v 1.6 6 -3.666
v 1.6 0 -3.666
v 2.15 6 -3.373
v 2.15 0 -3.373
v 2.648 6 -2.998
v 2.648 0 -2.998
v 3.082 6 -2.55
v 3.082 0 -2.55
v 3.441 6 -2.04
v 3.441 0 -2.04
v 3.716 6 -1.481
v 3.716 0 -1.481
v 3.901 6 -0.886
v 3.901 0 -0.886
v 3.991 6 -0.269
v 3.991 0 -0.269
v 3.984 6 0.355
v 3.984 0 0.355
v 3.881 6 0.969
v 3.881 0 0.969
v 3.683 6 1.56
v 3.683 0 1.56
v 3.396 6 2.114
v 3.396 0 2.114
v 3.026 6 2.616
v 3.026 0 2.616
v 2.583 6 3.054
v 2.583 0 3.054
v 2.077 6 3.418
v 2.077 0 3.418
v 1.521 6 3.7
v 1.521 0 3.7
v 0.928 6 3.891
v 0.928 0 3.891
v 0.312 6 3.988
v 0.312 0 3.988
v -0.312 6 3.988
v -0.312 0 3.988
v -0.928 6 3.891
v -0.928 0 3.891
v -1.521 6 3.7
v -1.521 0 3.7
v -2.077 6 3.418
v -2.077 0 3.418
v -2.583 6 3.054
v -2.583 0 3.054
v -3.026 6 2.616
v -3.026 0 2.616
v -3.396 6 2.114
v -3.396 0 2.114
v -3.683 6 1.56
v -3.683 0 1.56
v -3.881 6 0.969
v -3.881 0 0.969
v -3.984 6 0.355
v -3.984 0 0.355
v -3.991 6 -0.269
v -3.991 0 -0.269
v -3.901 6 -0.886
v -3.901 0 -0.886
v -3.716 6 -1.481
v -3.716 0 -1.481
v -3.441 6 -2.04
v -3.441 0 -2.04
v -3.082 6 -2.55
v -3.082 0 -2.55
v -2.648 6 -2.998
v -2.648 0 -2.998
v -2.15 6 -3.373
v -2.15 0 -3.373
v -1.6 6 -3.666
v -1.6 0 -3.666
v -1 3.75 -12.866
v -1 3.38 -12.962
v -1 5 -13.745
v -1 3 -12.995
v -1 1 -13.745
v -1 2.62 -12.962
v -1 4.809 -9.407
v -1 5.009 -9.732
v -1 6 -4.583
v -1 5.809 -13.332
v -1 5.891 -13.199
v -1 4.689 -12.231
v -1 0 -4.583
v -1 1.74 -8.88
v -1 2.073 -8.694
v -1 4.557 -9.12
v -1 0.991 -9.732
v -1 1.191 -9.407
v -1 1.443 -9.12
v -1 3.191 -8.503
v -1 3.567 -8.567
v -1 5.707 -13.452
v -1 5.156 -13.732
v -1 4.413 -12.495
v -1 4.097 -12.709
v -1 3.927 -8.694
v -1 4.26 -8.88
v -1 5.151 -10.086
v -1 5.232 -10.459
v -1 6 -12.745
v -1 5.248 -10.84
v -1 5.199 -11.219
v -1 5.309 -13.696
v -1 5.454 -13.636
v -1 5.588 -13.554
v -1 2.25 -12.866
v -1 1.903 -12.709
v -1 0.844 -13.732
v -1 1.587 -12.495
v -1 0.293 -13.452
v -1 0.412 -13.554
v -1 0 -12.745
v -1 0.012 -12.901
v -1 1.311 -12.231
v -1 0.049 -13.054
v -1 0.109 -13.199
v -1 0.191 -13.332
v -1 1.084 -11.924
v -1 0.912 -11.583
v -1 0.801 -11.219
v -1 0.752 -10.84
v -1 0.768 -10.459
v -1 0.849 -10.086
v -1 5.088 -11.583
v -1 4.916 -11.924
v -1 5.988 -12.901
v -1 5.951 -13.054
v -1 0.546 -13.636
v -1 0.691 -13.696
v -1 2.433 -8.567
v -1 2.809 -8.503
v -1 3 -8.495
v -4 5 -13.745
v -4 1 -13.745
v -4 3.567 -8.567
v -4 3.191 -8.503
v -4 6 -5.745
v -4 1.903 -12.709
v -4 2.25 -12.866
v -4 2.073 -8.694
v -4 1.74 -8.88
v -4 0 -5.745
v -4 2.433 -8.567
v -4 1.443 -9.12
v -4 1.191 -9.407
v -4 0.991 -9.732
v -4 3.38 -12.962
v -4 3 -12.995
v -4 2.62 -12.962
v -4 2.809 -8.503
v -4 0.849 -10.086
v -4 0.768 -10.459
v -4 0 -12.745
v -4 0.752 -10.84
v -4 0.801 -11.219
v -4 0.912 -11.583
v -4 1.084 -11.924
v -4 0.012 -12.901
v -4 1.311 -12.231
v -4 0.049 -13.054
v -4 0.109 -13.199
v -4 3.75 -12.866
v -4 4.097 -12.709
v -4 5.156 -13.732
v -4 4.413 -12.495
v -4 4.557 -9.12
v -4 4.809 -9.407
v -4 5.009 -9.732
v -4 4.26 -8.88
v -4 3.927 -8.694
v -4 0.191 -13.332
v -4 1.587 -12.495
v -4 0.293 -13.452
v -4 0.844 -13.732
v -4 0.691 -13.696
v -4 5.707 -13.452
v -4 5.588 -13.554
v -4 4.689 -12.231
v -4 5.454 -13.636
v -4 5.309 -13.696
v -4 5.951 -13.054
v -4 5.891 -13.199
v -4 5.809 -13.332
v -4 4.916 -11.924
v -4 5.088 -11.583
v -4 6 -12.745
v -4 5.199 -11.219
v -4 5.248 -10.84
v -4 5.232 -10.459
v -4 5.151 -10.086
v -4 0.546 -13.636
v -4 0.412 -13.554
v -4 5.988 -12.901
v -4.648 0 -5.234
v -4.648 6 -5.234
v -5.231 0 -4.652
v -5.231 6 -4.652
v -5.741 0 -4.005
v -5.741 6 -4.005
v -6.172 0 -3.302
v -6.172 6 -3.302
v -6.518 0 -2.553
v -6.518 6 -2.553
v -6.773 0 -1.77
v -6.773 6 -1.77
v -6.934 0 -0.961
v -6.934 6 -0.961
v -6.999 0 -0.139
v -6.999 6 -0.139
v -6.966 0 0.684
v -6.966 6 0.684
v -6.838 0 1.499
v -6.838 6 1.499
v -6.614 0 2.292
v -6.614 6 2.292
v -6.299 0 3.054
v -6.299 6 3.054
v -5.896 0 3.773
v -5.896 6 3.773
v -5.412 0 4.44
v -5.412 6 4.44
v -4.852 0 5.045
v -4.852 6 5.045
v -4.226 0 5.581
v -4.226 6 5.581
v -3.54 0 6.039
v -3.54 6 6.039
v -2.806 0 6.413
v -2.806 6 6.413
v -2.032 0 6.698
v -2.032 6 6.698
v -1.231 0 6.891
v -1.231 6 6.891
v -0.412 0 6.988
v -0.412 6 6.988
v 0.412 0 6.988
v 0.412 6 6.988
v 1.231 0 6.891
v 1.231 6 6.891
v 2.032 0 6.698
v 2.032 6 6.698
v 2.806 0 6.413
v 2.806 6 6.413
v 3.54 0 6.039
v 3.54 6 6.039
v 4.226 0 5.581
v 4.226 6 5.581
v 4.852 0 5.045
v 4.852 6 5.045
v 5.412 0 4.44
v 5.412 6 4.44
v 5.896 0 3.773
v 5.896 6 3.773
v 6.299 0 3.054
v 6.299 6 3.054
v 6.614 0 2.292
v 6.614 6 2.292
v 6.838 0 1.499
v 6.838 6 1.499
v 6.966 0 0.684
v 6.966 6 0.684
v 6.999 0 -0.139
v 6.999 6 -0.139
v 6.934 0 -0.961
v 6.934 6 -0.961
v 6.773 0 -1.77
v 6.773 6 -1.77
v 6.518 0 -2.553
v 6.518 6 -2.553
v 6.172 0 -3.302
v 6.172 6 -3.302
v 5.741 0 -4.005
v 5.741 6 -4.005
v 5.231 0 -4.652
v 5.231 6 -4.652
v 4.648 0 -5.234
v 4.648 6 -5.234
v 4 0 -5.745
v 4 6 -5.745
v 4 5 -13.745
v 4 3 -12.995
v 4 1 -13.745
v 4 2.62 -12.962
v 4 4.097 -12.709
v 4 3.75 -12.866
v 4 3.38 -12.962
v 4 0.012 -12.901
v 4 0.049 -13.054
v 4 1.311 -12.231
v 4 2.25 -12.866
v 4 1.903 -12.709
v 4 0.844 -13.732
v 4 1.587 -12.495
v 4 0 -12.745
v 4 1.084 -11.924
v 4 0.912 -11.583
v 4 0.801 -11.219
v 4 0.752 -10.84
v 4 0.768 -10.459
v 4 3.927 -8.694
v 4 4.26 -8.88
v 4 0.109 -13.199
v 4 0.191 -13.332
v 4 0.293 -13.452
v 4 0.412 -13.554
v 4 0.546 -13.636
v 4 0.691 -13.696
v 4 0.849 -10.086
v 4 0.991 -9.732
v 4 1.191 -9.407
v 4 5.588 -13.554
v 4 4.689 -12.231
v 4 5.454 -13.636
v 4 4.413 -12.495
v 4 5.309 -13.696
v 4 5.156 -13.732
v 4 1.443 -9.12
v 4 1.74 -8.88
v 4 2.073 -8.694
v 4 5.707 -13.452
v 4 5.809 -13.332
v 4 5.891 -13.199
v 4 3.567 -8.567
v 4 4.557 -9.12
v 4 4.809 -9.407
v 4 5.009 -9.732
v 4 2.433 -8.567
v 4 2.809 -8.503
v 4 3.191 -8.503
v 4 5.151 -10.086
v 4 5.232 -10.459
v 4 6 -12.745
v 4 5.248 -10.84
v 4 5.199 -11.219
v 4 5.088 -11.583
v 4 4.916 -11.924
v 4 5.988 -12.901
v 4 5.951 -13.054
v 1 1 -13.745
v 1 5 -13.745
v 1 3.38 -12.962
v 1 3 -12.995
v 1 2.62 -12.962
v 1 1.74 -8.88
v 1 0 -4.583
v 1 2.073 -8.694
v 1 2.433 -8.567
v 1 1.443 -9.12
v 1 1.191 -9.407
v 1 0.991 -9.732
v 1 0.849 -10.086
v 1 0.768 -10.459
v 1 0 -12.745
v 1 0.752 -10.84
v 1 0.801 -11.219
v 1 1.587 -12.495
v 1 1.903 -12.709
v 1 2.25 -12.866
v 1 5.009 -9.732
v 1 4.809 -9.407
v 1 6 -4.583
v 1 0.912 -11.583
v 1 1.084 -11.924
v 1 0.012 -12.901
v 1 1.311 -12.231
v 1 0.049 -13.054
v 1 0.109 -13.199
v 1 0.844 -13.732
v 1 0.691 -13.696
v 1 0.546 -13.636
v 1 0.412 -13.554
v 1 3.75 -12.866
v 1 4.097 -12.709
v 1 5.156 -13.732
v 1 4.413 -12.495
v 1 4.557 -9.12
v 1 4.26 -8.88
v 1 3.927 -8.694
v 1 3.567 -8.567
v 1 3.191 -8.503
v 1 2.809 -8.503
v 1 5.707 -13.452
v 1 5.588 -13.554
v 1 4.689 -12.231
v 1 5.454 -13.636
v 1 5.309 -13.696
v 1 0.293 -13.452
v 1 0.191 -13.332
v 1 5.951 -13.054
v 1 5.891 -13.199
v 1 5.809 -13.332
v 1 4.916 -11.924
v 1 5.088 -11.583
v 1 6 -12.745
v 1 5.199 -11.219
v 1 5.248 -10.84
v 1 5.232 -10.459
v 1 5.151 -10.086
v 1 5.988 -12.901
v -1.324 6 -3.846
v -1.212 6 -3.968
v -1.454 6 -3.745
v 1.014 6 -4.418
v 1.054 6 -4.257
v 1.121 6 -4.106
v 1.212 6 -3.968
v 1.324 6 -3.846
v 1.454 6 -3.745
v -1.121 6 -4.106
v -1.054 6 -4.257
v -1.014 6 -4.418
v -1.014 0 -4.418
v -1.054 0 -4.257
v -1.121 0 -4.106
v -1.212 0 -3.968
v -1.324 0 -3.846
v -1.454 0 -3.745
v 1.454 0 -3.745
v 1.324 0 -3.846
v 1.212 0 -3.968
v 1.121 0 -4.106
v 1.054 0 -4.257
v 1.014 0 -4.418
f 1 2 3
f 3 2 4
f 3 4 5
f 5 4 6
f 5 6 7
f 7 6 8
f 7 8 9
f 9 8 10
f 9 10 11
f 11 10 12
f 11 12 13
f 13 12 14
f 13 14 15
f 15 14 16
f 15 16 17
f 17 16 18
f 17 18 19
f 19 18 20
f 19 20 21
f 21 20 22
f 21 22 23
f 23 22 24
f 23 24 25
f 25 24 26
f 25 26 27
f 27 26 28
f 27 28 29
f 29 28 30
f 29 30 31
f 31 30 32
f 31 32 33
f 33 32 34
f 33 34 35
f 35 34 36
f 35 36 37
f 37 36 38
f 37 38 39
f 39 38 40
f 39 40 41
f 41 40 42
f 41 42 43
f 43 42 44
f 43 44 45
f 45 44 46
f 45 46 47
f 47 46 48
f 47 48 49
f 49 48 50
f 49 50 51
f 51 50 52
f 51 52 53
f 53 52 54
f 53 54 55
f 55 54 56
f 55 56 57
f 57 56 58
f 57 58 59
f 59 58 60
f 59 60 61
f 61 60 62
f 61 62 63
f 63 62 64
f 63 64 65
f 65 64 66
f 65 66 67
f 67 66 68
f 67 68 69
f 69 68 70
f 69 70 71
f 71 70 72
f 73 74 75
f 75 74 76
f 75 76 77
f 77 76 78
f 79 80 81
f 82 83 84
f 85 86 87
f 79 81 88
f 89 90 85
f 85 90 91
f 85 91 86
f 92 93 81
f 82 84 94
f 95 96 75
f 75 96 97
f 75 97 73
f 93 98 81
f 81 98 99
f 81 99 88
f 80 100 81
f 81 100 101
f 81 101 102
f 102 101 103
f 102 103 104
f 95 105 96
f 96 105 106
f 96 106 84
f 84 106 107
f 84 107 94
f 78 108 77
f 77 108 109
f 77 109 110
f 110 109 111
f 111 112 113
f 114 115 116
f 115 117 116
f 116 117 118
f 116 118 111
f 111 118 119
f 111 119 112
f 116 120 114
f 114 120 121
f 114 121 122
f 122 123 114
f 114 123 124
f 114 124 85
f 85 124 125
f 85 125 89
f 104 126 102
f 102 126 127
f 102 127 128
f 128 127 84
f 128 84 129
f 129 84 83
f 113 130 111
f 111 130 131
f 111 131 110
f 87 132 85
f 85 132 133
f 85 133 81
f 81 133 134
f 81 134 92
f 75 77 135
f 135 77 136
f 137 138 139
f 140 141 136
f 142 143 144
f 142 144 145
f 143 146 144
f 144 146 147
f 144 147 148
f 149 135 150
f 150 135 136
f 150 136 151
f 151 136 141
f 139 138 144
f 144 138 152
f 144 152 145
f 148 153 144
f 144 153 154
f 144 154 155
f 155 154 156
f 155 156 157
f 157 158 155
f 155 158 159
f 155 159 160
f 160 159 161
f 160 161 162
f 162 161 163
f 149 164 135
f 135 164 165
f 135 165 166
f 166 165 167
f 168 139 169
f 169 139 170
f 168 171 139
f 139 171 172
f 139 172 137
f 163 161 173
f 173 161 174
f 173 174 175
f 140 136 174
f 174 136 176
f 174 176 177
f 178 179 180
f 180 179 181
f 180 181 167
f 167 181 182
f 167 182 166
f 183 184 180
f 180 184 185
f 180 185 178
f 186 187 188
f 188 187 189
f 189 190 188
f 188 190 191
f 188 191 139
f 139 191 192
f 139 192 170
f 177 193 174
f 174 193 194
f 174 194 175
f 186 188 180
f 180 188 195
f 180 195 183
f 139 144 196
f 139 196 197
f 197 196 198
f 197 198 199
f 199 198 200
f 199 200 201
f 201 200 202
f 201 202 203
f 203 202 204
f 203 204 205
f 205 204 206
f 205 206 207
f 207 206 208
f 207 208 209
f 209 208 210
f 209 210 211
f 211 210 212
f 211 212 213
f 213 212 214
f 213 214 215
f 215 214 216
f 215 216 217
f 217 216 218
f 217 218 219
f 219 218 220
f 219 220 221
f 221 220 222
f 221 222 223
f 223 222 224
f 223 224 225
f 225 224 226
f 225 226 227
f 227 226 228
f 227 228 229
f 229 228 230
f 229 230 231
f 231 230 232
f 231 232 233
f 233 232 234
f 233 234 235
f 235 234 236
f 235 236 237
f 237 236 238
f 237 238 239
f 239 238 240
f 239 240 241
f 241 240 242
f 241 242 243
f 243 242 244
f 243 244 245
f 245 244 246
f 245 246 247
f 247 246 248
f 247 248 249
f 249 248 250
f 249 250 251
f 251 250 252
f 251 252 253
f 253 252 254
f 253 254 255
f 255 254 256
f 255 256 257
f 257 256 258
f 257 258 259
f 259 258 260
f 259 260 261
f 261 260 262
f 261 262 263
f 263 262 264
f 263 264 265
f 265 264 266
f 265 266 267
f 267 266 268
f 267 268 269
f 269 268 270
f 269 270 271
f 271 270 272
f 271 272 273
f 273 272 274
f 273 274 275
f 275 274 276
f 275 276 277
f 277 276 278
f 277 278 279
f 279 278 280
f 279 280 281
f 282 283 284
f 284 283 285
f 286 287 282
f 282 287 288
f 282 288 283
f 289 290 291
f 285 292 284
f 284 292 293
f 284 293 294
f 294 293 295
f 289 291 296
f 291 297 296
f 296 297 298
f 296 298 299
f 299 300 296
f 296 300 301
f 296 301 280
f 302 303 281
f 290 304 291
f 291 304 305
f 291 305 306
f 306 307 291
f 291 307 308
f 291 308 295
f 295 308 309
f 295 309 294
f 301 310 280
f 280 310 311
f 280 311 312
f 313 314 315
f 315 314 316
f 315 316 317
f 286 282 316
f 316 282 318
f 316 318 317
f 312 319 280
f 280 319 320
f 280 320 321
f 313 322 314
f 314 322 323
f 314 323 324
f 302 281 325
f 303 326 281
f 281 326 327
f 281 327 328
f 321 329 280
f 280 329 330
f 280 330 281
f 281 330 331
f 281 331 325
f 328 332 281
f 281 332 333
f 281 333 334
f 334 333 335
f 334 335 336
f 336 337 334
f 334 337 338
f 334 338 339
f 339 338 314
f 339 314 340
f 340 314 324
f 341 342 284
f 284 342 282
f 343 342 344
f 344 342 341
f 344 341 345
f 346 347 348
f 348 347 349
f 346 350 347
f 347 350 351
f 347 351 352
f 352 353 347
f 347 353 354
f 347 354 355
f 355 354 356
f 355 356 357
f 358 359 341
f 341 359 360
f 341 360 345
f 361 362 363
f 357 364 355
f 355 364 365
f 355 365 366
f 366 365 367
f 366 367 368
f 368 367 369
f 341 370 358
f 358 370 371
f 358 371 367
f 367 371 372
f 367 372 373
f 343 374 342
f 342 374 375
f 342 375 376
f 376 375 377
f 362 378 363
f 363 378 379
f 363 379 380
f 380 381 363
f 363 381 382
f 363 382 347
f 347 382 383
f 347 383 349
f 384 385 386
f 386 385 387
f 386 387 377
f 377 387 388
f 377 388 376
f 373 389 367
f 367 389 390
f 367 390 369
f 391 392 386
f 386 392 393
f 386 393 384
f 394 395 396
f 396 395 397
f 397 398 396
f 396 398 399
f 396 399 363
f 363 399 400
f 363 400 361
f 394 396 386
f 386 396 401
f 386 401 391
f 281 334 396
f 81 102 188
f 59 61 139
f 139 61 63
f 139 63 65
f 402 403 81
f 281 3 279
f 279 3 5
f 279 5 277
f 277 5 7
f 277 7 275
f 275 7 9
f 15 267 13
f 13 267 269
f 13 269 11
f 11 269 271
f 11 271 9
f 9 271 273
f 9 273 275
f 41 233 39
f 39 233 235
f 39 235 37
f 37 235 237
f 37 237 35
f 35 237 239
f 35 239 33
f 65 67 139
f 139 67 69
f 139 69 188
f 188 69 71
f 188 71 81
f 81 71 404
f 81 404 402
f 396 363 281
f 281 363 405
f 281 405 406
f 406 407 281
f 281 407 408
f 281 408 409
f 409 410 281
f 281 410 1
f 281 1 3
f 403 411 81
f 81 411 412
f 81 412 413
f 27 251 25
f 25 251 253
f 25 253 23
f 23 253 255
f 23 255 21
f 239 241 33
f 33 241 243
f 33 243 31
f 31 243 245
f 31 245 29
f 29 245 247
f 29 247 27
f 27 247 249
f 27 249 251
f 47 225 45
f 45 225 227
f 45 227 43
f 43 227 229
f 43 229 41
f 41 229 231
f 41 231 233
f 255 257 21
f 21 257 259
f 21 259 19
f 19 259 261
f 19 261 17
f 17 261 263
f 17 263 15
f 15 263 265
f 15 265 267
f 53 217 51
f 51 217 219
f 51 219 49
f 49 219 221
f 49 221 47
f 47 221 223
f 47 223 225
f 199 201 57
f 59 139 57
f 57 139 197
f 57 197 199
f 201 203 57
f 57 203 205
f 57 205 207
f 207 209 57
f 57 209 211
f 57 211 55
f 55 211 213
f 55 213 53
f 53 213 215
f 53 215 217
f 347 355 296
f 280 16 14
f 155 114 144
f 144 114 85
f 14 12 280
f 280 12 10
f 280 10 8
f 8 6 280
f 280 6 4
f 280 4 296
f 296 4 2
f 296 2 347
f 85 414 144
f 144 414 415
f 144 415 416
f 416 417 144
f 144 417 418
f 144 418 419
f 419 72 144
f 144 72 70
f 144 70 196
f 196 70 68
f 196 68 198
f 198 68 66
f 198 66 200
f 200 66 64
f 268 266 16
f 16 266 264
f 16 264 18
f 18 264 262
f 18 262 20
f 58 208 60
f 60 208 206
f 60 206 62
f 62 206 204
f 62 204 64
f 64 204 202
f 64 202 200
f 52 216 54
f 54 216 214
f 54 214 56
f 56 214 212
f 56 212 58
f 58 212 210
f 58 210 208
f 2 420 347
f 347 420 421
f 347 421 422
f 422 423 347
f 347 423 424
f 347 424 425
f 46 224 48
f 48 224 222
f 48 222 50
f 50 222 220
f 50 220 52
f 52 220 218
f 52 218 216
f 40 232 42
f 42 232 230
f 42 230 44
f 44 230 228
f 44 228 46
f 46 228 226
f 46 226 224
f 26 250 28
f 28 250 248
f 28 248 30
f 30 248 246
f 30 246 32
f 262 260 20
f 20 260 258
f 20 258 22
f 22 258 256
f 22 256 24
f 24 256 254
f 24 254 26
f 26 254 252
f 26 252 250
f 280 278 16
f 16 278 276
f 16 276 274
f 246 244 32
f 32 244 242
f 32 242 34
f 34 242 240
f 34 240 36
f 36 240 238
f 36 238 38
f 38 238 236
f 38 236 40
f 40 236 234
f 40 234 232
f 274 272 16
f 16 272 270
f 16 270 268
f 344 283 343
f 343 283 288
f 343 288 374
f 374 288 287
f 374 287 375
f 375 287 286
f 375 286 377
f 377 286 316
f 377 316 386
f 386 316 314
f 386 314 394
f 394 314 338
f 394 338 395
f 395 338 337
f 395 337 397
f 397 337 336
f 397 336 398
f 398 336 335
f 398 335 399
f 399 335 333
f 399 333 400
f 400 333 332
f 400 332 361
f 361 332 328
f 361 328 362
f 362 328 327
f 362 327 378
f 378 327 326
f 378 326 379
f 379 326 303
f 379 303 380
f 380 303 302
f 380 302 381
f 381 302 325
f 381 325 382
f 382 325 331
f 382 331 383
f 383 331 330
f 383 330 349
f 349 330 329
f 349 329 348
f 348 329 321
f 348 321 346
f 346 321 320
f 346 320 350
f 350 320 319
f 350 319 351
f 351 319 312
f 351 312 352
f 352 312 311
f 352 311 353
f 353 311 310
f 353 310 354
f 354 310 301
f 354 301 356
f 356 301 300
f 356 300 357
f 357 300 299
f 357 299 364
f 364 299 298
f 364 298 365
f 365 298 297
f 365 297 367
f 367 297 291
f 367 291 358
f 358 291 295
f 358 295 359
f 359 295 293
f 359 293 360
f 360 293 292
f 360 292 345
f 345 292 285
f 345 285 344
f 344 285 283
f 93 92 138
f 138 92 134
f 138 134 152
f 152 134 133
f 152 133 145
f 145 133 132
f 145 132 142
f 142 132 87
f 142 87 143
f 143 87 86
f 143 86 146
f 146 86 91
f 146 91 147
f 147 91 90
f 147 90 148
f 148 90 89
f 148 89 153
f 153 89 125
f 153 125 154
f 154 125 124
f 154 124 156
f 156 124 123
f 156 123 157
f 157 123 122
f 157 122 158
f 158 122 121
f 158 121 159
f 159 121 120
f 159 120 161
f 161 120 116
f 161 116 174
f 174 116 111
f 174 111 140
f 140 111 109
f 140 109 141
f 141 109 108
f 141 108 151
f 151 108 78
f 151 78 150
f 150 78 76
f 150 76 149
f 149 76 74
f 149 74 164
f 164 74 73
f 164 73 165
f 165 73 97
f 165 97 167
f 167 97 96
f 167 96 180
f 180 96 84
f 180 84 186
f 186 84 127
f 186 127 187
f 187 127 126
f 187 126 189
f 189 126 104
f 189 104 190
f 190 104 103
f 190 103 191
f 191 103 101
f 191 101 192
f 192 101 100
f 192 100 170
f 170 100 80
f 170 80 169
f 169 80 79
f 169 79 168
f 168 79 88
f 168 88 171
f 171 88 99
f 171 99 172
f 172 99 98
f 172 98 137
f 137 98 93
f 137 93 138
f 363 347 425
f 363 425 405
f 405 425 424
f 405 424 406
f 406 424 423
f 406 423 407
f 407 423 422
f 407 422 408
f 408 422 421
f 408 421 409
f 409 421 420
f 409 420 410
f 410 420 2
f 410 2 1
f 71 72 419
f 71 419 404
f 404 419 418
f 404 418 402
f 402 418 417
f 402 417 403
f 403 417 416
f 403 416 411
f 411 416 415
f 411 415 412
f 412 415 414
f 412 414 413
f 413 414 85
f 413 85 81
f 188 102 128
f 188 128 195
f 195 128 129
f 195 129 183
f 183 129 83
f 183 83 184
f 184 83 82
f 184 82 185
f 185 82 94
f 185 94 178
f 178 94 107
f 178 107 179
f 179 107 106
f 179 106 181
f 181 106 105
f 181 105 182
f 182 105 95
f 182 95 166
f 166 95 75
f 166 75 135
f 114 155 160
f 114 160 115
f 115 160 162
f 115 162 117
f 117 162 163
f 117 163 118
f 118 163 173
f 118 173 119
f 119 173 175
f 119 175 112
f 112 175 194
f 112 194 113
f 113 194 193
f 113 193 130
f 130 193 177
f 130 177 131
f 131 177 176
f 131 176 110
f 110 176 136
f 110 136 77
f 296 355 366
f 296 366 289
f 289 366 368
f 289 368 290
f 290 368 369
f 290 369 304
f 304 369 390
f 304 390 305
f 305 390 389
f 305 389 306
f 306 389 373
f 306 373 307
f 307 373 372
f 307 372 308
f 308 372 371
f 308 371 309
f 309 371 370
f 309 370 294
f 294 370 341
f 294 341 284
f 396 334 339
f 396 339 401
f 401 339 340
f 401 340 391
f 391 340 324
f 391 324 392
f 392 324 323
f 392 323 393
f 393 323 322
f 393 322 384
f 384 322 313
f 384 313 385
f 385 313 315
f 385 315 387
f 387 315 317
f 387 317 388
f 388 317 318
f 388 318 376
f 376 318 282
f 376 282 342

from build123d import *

# Parameters (mm, degrees)
BOSS_EXTRUDE1_DEPTH = 6
SKETCH3_R           = 2.25
CUT_EXTRUDE1_DEPTH  = 10
FILLET1_R           = 1


with BuildPart() as part:
    # Sketch2 → Boss-Extrude1 (new body)
    with BuildSketch(Plane(origin=(0, 0, 0), x_dir=(1, 0, 0), z_dir=(0, 1, 0))):
        with BuildLine():
            Line((-1, 3.872983346), (-1, 13.744562647))
            Line((-1, 13.744562647), (-4, 13.744562647))
            Line((-4, 13.744562647), (-4, 5.744562647))
            ThreePointArc((-4, 5.744562647), (0, -7), (4, 5.744562647))
            Line((4, 5.744562647), (4, 13.744562647))
            Line((4, 13.744562647), (1, 13.744562647))
            Line((1, 13.744562647), (1, 3.872983346))
            ThreePointArc((1, 3.872983346), (0, -4), (-1, 3.872983346))
        make_face()
    extrude(amount=BOSS_EXTRUDE1_DEPTH)

    # Sketch3 → Cut-Extrude1 (cut)
    with BuildSketch(Plane(origin=(4, 0, 0), x_dir=(0, 0, -1), z_dir=(1, 0, 0))):
        with Locations((10.744562647, 3)):
            Circle(SKETCH3_R)
    extrude(amount=-CUT_EXTRUDE1_DEPTH, mode=Mode.SUBTRACT)

    # Fillet1
    fillet1_edges = [part.edges().sort_by_distance(p)[0] for p in [
        (-2.5, 0, -13.744562647),
        (-2.5, 6, -13.744562647),
        (1, 3, -3.872983346),
        (-1, 3, -3.872983346),
        (2.5, 6, -13.744562647),
        (2.5, 0, -13.744562647),
    ]]
    fillet(fillet1_edges, radius=FILLET1_R)


solid = part.part
